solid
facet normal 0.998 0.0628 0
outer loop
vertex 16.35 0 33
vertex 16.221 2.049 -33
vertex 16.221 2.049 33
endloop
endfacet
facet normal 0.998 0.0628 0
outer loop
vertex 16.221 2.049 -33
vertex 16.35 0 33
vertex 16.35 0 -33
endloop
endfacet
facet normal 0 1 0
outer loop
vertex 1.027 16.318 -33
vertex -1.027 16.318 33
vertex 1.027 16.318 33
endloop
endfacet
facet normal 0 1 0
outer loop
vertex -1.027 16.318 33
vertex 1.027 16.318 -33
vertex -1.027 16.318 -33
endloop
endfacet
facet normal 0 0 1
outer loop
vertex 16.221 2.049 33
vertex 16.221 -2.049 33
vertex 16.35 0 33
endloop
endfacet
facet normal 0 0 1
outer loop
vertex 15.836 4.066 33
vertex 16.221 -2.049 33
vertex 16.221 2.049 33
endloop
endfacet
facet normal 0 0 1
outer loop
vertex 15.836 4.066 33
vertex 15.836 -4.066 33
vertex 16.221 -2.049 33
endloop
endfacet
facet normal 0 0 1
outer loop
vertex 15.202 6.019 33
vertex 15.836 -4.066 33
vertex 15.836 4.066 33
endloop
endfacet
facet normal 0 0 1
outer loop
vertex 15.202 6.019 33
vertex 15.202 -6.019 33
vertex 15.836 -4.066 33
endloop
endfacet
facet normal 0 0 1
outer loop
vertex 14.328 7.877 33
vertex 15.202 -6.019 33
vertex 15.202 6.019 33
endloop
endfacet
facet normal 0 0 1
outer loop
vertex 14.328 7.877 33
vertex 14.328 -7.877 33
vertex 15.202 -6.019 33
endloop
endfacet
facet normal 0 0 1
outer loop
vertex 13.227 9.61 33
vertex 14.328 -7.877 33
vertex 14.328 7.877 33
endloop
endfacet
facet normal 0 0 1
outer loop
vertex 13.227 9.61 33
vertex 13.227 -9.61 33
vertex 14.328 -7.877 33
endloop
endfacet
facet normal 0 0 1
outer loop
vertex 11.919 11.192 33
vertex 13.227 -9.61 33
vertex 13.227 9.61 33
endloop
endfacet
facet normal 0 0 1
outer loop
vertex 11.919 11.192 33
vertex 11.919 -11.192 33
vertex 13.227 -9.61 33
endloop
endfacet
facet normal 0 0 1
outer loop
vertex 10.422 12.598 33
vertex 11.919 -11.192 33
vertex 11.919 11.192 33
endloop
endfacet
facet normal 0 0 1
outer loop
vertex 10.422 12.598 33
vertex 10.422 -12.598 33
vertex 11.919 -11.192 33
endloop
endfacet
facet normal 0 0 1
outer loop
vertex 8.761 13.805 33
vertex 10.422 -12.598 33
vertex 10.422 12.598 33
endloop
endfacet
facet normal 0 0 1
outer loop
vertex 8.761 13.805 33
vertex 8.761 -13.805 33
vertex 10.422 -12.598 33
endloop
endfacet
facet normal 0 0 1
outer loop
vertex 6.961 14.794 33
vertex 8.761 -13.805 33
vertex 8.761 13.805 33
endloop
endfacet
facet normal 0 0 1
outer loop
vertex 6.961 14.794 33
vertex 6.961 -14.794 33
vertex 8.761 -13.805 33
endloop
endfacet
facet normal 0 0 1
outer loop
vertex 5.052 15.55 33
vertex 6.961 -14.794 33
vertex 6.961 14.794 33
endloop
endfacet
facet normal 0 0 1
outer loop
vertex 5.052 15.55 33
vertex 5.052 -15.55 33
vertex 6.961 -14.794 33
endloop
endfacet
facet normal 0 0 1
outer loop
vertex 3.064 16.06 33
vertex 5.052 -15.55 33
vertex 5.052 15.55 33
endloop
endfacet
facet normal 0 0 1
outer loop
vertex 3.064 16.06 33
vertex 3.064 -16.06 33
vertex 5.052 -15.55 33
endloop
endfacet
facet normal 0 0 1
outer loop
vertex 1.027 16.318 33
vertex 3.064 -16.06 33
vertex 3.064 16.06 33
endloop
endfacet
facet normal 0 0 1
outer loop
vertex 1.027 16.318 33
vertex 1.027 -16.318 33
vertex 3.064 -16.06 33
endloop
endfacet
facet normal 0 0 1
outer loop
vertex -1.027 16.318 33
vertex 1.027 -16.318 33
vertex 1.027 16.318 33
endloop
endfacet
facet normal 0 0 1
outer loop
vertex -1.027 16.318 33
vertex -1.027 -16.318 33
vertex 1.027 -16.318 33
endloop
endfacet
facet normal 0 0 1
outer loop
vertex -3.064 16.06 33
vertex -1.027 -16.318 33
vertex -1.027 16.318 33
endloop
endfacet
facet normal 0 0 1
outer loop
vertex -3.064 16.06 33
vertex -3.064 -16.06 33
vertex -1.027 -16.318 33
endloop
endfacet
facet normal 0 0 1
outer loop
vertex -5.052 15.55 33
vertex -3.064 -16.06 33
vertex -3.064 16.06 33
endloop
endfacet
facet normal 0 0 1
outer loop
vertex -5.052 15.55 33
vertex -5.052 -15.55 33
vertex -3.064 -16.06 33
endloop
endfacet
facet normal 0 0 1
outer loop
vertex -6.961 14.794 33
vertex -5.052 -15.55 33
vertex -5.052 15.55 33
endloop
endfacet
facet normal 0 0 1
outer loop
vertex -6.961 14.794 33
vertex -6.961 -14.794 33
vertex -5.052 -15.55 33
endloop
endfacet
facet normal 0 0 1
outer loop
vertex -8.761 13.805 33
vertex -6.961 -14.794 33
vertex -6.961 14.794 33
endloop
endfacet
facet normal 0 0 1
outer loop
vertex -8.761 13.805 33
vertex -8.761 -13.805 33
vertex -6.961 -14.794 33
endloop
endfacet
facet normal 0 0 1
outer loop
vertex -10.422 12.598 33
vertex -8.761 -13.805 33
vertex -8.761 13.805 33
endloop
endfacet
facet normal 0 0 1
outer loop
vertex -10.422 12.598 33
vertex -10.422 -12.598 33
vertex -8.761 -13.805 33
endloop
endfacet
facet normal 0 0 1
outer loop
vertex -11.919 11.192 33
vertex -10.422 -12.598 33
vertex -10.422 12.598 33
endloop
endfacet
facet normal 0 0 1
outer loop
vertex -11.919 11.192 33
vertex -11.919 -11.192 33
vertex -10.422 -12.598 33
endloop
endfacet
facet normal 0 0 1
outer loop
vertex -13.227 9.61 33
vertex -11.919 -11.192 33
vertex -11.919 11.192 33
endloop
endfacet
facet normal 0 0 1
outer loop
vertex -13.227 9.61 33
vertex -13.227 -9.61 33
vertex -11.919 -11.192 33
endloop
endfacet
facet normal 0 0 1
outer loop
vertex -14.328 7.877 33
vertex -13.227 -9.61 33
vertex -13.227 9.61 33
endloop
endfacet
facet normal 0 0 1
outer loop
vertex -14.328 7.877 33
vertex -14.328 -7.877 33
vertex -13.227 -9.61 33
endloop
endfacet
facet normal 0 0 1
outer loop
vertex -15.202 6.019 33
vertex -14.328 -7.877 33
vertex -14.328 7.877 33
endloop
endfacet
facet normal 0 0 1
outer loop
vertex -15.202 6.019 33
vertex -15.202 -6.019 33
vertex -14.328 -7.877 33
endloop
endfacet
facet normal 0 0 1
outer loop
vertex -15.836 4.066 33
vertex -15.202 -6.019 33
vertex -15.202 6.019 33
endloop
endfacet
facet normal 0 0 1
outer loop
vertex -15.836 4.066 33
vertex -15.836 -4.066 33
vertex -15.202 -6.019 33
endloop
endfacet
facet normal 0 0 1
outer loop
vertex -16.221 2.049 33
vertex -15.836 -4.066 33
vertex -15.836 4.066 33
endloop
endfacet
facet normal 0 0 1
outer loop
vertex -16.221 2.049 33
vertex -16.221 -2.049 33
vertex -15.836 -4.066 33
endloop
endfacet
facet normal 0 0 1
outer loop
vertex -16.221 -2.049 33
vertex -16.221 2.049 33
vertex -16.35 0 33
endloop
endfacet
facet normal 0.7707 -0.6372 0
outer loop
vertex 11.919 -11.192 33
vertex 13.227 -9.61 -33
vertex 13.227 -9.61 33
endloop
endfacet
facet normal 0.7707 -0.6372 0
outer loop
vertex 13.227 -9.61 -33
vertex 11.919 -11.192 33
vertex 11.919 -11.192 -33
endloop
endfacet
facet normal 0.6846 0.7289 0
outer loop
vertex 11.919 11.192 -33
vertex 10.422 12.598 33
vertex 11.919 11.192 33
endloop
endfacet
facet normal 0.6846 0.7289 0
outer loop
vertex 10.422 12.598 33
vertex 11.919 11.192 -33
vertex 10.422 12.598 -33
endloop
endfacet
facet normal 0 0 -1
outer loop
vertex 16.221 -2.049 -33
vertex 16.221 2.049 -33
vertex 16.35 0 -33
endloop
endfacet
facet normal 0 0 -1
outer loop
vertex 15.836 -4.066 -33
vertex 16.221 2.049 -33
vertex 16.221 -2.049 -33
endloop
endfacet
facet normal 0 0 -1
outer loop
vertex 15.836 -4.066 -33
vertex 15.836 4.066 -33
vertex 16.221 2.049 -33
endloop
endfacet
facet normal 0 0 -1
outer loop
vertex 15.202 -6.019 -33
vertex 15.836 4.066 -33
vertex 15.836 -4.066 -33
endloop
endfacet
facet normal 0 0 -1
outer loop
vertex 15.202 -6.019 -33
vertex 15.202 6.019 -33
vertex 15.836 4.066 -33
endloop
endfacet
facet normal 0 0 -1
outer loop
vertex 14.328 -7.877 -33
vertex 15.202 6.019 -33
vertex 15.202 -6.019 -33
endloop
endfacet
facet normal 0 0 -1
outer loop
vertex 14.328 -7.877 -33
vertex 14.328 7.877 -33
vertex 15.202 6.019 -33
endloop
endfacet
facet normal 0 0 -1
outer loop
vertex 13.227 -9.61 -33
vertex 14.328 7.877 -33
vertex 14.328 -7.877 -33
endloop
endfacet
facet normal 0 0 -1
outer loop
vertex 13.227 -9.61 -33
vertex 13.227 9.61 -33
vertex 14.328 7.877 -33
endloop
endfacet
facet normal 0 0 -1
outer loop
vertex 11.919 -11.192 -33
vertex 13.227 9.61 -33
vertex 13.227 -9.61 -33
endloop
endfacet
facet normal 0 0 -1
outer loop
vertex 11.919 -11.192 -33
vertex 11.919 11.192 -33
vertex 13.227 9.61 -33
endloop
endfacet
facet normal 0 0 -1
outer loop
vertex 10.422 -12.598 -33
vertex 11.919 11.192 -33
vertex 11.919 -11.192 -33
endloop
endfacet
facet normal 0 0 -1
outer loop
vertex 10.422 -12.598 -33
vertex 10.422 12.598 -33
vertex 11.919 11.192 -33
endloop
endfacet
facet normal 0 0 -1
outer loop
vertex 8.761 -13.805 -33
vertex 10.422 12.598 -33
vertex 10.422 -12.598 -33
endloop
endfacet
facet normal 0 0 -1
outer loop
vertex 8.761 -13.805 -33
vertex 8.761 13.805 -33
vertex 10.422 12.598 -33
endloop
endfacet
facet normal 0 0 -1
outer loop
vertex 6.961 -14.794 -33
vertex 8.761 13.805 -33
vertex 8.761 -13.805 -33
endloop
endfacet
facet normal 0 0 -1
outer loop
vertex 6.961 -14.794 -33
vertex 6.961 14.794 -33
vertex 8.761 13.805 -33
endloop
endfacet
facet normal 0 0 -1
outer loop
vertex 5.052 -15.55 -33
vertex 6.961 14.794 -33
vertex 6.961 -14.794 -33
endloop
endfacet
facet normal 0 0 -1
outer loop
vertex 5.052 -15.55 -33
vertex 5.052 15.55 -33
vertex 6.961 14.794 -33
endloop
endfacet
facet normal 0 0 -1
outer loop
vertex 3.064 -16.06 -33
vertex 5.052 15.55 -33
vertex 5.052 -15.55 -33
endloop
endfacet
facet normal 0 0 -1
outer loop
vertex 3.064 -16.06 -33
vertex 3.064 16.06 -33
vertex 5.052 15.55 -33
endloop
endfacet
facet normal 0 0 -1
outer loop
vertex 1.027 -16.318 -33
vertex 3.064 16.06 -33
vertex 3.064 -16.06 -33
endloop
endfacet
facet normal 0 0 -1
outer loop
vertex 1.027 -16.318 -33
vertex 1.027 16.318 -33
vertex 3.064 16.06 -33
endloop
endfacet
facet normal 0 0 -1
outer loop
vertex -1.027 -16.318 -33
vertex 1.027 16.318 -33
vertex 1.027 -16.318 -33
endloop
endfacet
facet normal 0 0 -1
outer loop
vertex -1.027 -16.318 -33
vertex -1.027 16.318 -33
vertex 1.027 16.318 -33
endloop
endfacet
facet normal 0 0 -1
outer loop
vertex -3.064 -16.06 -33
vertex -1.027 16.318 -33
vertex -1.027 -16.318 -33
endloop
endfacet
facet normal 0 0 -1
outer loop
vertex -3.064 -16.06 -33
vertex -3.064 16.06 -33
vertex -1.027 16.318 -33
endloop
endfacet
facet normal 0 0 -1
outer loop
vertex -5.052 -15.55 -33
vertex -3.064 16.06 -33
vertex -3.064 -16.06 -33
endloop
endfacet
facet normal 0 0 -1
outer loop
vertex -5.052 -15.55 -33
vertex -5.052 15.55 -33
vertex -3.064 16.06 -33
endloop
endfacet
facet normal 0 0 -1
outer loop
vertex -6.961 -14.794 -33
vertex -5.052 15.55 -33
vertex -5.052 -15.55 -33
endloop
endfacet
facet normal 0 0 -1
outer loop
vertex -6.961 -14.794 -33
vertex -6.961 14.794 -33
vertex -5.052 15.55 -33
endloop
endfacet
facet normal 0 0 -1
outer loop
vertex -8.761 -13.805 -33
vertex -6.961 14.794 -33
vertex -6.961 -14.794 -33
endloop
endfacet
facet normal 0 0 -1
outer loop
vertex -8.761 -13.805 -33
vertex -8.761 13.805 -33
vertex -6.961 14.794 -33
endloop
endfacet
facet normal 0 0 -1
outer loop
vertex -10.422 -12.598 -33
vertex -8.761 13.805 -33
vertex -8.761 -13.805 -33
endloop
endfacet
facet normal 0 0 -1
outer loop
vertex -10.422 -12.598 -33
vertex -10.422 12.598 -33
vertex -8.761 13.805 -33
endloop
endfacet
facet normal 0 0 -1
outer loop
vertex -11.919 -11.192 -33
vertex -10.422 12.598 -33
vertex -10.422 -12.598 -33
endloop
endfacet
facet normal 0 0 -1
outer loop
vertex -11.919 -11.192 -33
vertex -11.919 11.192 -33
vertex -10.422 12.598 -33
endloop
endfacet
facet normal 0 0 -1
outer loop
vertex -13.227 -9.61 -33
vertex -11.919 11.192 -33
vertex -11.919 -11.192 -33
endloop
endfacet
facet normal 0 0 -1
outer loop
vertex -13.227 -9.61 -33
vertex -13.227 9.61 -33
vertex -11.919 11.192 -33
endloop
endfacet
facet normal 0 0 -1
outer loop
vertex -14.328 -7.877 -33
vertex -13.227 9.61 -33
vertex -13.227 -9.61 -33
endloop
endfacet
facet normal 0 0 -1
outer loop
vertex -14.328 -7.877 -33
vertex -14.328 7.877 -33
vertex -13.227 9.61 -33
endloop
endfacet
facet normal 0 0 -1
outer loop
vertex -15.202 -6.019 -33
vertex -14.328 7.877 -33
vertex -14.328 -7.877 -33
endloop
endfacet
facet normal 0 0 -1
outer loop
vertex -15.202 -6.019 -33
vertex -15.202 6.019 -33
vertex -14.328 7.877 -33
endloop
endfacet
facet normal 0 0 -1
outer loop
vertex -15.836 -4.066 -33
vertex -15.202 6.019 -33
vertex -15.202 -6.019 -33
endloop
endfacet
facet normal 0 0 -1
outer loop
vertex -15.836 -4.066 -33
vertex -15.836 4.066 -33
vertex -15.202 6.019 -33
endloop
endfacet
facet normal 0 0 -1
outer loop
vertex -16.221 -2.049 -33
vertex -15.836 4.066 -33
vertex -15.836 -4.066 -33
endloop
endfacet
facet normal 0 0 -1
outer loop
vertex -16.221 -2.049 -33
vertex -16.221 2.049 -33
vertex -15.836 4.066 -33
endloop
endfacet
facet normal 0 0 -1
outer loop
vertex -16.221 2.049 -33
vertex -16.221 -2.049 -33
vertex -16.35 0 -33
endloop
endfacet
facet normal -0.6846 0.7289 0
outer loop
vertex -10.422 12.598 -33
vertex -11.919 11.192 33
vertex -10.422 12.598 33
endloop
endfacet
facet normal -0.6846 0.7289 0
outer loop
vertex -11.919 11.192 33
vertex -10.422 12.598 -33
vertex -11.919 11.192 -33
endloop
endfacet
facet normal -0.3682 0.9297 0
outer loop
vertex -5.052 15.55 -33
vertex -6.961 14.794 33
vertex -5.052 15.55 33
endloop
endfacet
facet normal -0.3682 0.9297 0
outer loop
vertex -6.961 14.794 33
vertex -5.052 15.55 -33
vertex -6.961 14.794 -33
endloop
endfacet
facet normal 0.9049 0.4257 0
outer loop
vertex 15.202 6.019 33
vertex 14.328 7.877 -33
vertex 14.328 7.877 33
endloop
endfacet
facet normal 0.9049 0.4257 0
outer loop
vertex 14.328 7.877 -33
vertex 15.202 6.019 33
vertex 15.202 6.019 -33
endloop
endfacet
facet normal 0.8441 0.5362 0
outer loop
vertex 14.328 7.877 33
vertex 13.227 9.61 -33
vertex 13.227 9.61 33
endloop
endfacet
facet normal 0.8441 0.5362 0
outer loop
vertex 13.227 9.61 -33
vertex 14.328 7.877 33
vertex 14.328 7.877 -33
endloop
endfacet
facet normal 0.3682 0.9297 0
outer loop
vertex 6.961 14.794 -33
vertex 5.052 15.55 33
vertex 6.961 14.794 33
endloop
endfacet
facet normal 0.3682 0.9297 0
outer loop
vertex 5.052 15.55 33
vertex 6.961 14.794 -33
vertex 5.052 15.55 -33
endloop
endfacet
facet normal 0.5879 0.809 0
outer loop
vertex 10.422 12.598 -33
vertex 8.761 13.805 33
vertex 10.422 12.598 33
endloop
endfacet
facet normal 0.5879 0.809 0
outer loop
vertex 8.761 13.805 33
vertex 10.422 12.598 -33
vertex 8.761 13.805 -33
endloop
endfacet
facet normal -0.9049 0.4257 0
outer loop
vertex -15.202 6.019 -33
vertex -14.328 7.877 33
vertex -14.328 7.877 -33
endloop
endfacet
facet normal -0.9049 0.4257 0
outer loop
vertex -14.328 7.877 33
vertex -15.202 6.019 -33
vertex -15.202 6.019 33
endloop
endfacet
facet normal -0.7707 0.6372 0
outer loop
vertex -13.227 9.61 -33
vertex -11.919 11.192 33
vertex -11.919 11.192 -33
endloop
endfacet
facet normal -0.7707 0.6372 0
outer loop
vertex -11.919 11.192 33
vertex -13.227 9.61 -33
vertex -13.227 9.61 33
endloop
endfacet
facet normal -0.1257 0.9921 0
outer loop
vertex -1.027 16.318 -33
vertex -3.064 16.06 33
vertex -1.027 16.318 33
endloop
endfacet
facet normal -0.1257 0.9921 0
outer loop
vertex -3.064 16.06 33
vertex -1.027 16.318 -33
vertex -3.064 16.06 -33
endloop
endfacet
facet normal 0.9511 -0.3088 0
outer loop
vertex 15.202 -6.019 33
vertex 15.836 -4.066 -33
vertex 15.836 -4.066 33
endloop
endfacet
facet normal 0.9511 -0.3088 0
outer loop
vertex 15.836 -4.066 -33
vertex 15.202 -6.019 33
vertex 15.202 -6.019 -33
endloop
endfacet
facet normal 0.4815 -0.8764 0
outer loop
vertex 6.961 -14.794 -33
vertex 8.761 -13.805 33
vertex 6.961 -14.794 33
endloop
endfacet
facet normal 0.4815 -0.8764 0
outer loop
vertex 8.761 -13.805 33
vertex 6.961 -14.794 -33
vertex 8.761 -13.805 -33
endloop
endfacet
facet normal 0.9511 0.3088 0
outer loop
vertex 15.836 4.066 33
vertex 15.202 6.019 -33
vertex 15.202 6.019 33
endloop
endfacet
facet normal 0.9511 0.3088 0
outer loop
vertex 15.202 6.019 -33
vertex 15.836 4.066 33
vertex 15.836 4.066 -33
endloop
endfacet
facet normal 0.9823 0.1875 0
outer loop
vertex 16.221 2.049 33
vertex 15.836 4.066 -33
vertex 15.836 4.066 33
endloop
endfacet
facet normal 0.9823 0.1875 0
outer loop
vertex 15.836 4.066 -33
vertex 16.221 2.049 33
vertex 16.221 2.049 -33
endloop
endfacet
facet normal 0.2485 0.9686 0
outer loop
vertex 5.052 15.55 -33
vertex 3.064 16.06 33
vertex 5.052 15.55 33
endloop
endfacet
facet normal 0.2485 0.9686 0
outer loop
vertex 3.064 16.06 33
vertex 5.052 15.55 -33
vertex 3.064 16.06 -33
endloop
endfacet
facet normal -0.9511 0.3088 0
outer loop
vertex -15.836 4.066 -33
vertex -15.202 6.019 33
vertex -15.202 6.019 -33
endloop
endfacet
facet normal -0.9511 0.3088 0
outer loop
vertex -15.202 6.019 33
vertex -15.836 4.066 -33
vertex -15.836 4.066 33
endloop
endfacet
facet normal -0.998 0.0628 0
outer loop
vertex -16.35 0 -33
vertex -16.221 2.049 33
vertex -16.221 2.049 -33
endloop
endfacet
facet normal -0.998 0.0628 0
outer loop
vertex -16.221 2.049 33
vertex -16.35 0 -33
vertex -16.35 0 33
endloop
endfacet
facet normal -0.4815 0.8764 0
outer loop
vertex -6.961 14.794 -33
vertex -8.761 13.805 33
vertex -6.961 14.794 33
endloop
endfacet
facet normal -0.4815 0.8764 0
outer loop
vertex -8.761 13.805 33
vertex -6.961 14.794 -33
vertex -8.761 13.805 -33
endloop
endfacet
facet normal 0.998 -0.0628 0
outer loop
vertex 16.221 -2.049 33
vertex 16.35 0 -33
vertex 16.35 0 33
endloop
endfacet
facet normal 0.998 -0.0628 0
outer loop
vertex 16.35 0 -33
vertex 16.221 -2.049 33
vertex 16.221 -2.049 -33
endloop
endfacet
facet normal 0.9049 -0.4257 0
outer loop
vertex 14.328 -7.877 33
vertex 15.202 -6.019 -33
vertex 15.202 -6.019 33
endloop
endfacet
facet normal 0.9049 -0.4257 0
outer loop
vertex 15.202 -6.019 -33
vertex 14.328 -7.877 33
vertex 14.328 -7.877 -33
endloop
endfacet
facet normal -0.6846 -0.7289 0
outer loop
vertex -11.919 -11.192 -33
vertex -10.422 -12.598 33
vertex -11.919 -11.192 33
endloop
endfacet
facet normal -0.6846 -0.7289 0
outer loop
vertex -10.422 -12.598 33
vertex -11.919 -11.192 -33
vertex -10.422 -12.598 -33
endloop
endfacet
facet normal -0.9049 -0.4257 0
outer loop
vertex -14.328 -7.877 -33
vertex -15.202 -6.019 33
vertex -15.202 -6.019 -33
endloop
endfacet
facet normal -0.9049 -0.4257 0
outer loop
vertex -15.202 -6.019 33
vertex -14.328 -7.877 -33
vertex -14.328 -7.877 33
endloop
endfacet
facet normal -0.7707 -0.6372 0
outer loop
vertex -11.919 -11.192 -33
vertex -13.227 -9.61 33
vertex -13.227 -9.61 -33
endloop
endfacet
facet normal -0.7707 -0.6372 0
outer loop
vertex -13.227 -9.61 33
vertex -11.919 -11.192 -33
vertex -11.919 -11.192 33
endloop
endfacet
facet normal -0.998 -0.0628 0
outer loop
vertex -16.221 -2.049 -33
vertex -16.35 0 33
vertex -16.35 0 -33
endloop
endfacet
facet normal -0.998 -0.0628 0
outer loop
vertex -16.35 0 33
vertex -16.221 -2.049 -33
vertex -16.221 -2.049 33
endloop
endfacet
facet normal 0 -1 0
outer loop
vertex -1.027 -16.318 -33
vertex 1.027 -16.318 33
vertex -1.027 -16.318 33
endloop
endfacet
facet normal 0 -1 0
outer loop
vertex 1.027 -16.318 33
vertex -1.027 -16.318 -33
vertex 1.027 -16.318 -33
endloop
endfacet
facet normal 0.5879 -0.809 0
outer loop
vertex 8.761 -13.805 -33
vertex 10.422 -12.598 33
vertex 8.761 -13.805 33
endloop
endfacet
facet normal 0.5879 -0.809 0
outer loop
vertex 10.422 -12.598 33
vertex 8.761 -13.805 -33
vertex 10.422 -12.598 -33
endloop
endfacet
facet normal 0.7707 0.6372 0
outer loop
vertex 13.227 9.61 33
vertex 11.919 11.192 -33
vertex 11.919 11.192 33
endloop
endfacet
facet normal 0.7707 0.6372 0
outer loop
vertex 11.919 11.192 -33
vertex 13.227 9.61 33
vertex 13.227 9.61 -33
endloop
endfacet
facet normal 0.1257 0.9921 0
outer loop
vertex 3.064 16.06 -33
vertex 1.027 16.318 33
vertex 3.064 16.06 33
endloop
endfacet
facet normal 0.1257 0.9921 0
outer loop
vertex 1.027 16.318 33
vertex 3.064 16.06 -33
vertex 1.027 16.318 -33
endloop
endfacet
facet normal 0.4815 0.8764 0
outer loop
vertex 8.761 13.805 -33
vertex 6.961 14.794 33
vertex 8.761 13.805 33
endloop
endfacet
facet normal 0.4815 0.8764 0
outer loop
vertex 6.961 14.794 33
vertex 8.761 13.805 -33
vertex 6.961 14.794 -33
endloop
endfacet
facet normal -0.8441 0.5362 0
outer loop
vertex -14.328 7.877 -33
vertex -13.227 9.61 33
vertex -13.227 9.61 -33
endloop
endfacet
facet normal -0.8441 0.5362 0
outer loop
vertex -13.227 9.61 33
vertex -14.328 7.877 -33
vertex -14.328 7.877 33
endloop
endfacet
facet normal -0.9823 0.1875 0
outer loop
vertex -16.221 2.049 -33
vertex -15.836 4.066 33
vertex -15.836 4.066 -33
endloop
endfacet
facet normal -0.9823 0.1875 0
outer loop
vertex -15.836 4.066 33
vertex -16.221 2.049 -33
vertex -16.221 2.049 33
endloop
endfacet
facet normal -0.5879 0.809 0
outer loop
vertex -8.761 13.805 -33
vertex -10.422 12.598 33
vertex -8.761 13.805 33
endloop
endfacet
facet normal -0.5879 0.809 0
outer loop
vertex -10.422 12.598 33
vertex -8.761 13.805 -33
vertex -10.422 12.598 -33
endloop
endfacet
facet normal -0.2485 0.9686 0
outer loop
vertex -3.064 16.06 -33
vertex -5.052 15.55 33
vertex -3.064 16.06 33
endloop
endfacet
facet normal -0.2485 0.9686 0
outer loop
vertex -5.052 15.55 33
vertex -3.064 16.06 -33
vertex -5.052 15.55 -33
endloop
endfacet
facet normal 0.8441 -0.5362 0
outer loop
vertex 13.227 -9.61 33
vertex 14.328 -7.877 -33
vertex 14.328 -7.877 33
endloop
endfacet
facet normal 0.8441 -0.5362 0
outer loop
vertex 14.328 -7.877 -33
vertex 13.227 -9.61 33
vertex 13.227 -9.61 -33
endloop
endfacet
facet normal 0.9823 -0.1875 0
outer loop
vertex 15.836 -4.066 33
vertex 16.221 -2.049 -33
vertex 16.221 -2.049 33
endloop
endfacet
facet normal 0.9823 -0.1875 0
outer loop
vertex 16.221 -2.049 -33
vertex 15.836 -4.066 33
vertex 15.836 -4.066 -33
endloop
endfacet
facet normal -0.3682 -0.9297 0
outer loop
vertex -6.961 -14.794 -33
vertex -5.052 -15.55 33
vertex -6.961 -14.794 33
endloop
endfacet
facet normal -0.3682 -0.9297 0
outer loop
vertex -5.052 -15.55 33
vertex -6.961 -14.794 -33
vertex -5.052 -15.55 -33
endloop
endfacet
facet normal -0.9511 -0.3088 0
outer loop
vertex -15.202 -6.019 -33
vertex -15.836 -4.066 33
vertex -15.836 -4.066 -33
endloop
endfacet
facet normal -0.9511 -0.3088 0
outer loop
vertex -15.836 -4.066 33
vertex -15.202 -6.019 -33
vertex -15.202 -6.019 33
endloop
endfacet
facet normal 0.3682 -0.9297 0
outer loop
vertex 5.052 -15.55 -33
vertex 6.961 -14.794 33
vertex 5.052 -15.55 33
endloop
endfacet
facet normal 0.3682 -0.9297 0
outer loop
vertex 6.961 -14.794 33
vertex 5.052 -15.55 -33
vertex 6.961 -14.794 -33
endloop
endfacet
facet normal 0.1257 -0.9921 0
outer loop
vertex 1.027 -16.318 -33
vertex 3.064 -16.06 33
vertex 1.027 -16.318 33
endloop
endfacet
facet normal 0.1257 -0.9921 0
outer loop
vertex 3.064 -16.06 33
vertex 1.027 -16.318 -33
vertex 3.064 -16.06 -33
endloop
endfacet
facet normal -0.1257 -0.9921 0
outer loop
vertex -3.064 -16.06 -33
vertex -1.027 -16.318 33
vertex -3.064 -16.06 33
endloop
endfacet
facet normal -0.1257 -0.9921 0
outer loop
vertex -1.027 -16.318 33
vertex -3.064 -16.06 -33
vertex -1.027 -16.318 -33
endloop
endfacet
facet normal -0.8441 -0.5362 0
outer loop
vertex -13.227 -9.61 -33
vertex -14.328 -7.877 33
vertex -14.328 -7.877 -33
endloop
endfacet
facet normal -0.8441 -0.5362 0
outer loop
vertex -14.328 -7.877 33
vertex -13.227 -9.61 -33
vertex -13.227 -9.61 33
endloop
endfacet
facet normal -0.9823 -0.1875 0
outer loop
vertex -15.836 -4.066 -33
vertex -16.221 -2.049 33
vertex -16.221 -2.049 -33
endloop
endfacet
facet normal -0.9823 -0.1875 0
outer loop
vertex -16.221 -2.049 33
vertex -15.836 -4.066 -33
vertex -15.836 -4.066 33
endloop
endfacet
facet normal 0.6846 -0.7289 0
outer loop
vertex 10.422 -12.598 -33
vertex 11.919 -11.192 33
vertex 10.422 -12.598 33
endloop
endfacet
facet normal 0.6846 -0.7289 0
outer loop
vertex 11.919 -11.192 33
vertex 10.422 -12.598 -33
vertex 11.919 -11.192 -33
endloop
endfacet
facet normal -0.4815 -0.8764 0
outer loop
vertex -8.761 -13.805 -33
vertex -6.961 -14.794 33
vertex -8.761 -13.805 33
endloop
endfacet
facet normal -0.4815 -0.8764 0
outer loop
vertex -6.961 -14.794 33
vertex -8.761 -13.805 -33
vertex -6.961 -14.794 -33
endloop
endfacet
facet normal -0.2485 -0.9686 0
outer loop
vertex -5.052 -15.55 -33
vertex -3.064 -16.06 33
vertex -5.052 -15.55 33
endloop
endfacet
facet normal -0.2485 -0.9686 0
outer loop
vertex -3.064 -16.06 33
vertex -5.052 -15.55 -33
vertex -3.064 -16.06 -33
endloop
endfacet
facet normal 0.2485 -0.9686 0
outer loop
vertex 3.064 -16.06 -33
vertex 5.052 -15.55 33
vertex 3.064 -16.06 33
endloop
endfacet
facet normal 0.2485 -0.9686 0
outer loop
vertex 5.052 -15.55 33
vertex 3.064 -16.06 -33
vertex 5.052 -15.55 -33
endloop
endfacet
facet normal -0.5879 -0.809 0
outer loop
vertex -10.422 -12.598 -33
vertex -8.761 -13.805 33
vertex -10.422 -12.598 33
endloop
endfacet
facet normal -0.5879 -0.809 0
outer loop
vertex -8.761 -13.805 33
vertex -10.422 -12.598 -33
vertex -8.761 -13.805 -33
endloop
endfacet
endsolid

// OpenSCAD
$fn = 50;


difference() {
	union() {
		translate(v = [0, 0, -33.0000000000]) {
			cylinder(h = 66, r = 16.3500000000);
		}
	}
	union() {
		translate(v = [0, 0, -100.0000000000]) {
			cylinder(h = 200, r = 0);
		}
	}
}
